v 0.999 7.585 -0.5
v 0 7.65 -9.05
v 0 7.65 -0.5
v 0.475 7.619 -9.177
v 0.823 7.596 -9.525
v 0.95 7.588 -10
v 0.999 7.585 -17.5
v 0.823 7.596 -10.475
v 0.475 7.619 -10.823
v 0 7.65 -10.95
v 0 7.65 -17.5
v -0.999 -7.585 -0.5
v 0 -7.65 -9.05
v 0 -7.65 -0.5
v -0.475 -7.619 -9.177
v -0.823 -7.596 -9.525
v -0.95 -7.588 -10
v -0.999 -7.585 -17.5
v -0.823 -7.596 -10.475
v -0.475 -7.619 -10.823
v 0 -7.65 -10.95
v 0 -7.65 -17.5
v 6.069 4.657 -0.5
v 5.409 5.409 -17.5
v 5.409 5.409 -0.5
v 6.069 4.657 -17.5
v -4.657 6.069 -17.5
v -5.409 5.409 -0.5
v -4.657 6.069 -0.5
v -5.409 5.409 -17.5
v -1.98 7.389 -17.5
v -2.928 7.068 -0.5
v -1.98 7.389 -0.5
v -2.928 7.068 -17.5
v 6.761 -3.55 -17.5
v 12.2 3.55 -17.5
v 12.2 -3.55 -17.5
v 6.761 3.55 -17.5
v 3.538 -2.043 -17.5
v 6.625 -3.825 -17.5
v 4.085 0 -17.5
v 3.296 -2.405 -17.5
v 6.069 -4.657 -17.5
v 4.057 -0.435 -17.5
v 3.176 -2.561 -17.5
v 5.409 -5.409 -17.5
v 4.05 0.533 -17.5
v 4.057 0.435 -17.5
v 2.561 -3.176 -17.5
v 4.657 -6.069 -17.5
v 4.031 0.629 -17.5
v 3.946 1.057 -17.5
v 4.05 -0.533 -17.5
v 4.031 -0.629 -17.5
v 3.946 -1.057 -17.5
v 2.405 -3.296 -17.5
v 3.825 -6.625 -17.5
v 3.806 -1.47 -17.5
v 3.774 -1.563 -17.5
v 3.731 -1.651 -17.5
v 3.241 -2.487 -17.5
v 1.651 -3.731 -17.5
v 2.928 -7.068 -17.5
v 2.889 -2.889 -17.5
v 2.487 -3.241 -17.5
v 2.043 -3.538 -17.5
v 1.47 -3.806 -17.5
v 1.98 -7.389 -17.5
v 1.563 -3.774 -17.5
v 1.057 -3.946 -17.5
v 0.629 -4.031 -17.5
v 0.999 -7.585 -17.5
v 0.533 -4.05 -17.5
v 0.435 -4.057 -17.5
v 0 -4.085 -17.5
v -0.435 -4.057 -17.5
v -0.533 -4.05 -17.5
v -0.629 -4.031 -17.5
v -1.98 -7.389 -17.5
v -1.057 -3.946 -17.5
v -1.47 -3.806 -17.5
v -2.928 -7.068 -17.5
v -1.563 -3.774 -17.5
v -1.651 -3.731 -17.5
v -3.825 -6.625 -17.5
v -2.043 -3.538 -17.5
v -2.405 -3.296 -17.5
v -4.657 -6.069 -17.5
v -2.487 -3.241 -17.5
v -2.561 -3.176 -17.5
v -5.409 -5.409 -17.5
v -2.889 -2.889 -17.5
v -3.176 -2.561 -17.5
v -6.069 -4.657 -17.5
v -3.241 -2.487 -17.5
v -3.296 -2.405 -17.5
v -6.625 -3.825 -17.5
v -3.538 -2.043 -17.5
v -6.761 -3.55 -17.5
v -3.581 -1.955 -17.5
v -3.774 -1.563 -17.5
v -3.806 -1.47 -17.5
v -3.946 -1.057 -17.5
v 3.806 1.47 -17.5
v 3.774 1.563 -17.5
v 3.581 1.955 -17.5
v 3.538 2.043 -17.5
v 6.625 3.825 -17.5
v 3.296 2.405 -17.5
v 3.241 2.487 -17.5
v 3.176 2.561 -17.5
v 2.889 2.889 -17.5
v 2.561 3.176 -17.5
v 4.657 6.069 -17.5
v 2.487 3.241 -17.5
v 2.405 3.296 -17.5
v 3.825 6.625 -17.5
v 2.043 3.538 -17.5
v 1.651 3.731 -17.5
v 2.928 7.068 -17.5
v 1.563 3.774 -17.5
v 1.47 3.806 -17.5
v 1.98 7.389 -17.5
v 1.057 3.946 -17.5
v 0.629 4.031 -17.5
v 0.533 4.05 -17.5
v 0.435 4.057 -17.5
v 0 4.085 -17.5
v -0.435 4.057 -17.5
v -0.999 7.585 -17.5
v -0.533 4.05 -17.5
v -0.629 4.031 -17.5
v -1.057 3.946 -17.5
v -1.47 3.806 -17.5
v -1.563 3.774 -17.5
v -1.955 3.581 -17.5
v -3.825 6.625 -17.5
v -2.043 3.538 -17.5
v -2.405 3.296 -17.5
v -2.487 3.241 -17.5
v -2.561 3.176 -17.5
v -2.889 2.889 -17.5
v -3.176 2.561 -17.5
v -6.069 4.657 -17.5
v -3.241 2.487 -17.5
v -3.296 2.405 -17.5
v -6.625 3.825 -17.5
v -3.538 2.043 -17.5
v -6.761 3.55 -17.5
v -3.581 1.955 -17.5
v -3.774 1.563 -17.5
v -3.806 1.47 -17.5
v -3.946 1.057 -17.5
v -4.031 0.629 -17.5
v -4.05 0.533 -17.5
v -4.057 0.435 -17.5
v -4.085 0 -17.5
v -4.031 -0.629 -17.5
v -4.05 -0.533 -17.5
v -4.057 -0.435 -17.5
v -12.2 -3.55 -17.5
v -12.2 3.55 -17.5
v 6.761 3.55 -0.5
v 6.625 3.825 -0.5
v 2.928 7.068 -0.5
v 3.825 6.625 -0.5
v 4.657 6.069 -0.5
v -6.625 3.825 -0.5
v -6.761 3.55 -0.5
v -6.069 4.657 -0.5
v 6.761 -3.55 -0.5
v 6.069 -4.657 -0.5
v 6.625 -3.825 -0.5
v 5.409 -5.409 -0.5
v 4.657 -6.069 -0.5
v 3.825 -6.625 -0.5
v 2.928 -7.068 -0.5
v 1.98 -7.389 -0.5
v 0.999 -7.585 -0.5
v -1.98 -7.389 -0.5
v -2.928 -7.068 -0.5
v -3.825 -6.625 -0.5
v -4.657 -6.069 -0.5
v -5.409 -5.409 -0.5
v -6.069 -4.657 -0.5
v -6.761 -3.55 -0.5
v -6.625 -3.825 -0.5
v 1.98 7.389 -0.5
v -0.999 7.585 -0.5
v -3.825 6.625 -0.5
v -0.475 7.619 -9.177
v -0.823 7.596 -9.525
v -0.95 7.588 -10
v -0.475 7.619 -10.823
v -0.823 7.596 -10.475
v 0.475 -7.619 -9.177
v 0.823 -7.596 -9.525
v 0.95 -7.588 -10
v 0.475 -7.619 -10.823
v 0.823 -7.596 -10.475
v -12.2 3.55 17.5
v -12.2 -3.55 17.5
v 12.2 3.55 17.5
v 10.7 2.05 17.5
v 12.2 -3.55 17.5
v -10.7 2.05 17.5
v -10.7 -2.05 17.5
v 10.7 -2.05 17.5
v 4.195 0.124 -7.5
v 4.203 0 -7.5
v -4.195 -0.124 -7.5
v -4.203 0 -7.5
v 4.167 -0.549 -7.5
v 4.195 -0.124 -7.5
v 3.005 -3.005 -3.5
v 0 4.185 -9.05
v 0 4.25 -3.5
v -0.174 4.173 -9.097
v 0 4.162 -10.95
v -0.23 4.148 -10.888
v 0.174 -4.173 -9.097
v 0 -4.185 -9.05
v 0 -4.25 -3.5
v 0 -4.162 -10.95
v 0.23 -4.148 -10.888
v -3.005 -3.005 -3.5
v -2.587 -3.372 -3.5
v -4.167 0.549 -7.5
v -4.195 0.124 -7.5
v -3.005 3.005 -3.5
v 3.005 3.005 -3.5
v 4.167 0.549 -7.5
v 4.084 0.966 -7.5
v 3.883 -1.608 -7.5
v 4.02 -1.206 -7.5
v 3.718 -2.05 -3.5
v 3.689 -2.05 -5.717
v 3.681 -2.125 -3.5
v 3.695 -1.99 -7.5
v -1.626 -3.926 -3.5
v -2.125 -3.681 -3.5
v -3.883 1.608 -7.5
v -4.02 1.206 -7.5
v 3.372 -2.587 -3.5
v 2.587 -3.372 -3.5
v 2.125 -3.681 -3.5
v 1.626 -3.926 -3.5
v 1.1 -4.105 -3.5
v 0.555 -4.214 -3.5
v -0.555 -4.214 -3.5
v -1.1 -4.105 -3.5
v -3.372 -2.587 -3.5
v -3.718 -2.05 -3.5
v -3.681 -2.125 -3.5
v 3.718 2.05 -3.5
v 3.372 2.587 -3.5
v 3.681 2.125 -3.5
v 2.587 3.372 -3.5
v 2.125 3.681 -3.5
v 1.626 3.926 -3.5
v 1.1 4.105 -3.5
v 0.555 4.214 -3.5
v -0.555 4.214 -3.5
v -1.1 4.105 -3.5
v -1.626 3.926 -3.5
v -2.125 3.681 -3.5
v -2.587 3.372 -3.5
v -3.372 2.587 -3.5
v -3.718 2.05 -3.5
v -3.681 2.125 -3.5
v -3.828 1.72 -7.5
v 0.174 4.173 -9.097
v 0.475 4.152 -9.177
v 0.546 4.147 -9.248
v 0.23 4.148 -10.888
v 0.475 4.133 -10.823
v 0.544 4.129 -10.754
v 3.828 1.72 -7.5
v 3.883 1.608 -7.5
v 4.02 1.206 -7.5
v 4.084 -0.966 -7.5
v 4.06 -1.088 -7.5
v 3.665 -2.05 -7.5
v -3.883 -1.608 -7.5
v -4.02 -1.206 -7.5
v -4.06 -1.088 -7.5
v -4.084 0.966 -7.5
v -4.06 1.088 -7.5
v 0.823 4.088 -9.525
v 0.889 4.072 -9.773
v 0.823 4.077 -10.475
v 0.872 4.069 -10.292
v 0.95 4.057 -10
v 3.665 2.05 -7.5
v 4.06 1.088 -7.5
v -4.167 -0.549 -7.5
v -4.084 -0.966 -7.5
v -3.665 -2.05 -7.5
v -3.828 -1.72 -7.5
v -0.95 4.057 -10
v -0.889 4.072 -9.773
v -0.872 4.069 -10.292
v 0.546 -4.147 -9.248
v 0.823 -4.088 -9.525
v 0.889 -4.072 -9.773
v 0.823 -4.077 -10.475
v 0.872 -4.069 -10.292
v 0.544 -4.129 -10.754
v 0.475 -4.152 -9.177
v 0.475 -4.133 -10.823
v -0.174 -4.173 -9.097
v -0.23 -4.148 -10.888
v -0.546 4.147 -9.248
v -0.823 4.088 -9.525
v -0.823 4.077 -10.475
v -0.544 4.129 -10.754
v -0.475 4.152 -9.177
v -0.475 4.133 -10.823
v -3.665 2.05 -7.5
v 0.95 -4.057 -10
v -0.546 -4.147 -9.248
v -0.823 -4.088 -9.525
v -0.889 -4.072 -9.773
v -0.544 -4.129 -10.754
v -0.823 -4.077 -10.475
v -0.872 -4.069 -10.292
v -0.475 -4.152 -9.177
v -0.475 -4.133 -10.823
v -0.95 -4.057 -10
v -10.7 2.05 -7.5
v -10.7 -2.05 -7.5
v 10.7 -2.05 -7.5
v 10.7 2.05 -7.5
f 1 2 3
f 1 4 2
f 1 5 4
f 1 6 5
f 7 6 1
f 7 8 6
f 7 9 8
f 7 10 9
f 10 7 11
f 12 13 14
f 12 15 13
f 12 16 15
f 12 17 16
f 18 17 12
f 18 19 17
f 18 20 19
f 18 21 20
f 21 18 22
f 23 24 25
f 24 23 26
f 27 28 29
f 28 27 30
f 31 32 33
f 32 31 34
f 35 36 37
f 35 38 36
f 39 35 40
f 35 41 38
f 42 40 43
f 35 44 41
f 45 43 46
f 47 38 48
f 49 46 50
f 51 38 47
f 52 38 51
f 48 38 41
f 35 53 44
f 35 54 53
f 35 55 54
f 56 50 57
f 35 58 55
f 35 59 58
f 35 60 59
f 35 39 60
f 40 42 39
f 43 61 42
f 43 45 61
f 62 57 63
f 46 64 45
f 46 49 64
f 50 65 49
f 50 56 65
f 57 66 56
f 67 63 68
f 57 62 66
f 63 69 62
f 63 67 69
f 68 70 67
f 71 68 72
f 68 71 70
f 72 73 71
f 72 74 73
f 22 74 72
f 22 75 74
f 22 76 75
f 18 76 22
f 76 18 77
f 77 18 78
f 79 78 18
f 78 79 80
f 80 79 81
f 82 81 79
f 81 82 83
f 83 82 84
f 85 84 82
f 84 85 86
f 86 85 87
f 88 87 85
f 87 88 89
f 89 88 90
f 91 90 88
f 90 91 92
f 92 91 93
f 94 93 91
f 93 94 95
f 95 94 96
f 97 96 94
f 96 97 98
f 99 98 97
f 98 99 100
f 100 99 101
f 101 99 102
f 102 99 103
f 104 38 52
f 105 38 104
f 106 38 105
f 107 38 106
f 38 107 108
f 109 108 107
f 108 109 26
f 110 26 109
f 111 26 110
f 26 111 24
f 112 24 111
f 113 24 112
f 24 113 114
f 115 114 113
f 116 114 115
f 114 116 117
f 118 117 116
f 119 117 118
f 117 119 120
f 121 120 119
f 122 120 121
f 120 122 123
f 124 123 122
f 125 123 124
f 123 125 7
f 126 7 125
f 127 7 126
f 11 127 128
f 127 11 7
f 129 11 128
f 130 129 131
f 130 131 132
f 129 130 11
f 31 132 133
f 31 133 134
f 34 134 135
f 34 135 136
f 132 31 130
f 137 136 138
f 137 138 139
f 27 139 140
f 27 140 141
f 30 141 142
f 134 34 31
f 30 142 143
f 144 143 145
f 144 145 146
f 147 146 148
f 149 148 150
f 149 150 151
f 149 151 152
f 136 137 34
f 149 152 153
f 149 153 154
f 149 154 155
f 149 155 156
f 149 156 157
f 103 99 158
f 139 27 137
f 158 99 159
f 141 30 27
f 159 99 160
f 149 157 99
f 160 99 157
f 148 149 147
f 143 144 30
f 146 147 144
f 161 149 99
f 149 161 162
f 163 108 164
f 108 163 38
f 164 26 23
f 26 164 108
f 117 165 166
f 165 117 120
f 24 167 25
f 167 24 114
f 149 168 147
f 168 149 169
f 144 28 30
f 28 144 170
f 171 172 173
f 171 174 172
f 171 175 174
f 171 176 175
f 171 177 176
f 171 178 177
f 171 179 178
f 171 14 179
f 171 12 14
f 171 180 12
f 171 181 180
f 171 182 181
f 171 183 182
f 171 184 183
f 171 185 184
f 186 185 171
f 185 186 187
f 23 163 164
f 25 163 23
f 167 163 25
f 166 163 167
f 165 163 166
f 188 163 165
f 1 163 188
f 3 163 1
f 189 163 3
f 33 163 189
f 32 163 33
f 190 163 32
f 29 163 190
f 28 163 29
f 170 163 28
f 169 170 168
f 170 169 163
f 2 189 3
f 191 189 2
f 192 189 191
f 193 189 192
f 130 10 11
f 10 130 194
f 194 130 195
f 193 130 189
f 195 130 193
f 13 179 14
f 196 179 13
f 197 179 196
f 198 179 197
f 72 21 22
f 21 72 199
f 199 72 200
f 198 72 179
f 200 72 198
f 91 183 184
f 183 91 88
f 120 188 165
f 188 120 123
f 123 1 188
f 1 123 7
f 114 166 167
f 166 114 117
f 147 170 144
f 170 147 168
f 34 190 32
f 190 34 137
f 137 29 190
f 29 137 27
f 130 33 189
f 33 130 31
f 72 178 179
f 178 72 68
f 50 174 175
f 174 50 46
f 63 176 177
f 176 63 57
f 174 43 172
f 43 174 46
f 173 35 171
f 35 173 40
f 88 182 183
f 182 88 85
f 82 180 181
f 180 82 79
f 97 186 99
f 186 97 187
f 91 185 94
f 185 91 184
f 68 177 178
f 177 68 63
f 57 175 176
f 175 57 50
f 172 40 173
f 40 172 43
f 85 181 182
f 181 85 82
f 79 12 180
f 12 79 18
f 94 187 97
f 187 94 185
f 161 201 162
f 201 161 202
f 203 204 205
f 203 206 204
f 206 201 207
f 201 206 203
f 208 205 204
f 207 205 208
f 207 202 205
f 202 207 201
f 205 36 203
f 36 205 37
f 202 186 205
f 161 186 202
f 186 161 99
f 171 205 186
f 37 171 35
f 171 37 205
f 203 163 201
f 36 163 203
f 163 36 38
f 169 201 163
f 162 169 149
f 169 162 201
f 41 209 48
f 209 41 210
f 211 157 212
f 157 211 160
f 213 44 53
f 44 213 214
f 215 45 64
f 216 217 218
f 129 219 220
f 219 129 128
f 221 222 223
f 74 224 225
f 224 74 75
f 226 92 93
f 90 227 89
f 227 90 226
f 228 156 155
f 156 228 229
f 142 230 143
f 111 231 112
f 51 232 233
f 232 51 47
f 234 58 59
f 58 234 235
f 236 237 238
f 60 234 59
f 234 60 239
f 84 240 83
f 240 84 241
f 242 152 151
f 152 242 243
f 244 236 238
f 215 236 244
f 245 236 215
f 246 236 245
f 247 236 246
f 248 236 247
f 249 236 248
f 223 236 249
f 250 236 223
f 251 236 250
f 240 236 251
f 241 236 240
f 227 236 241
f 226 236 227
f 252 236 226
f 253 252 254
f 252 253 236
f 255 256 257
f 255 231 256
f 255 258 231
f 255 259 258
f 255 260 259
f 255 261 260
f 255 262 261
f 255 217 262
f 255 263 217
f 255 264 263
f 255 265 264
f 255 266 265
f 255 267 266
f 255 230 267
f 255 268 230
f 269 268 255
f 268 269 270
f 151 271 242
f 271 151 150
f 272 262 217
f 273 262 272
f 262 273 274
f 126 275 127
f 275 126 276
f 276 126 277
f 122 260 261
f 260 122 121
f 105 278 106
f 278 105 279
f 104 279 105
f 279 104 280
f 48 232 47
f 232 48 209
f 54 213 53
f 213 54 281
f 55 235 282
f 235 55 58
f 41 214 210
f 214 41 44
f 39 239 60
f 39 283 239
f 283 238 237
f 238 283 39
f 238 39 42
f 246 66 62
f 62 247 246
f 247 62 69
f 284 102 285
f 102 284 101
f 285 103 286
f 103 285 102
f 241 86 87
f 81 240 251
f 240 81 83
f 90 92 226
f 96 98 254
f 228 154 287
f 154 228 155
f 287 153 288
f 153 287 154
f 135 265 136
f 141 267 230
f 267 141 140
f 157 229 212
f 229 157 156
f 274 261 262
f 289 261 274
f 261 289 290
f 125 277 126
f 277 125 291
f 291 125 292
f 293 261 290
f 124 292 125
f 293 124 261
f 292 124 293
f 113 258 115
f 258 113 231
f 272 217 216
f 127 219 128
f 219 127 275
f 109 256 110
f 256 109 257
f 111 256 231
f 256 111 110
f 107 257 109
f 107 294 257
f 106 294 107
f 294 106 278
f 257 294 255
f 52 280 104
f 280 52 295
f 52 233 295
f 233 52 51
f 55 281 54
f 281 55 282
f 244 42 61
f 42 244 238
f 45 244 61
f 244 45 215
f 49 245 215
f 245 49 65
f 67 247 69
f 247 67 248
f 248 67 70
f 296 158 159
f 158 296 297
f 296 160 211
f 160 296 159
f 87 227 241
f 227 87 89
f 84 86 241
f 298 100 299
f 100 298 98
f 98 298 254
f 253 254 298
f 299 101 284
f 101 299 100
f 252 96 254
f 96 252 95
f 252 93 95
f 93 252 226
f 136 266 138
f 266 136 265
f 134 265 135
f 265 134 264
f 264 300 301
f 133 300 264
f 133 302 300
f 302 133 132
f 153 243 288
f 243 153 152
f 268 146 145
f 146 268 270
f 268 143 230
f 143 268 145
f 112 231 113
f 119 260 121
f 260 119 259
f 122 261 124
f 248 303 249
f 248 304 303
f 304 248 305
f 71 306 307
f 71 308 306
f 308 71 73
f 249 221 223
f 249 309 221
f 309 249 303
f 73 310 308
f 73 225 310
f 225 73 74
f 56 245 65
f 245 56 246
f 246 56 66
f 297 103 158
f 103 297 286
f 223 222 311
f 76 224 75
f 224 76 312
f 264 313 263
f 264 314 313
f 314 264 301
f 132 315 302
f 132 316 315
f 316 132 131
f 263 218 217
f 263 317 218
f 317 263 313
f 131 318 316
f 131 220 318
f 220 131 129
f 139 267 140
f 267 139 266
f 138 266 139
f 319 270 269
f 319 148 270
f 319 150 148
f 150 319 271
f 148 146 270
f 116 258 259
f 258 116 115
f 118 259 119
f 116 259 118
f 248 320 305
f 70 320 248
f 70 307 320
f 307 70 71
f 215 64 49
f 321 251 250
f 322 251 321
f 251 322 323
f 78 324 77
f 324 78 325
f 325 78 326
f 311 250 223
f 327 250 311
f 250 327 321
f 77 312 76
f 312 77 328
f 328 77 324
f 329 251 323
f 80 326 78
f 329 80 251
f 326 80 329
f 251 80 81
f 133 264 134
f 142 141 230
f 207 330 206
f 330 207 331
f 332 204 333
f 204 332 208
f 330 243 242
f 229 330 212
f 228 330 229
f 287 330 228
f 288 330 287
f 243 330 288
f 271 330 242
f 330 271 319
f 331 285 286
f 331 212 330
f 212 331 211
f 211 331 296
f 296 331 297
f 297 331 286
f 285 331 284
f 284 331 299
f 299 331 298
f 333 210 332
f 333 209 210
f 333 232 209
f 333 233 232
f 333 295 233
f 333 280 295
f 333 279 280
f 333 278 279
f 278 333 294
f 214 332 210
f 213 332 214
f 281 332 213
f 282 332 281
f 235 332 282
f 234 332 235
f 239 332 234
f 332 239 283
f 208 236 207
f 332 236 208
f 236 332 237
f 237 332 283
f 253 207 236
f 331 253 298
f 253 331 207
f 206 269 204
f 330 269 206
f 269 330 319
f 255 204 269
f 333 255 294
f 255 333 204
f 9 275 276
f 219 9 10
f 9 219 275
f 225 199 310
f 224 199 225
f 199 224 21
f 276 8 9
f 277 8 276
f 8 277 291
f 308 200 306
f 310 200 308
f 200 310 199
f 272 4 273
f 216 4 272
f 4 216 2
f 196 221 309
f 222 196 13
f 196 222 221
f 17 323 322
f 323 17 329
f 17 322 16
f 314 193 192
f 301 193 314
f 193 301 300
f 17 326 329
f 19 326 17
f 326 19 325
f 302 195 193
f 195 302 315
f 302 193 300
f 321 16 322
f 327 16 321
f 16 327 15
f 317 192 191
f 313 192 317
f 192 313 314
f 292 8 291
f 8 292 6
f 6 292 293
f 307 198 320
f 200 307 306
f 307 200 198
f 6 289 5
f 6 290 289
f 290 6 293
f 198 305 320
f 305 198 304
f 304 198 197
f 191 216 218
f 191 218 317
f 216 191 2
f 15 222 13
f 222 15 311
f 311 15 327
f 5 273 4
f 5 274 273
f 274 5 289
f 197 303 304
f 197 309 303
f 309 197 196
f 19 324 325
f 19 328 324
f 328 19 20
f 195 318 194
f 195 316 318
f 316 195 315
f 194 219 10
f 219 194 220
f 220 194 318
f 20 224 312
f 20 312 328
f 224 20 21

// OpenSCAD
DiaFix=1.9;
DiaSuction = 8.3;   // Suction tube
// This part depends on vacuum cleaner in use.
// If not ok for you, adapt to your wishes.
// or tape suction tube in vacuum cleaner until air tight.


color("lime")


difference() 
{
union()
    {    
    
        
     translate([0,0,-9])  //  
      cylinder(h=17 ,d=DiaSuction+7, center=true,$fn=48);  //
            
              
      cube([24.4,7.1,35],center=true); 
          
          
      
      
      
      
      
     
    }    // end upper union        
    
          // suction tube:
    
      translate([0,0,-12])  //  
      cylinder(h=17 ,d1=DiaSuction-0.2,d2=DiaSuction+0.2, center=true,$fn=48);  //
            
    
    
         translate([0,0,10])  //  
       
      cube([21.4,4.1,35],center=true); 
        
     
     
    // fix  suction tube:
     
     translate([0,0,-10])
       rotate([90,90,0]) 
      cylinder(h=30,d=DiaFix, center=true,$fn=12); 
  
     
       
       // demo check, comment out
       
   //     translate([0,10,0])  //  
       
   //   cube([30,20,40],center=true); 
        
     
    
}
